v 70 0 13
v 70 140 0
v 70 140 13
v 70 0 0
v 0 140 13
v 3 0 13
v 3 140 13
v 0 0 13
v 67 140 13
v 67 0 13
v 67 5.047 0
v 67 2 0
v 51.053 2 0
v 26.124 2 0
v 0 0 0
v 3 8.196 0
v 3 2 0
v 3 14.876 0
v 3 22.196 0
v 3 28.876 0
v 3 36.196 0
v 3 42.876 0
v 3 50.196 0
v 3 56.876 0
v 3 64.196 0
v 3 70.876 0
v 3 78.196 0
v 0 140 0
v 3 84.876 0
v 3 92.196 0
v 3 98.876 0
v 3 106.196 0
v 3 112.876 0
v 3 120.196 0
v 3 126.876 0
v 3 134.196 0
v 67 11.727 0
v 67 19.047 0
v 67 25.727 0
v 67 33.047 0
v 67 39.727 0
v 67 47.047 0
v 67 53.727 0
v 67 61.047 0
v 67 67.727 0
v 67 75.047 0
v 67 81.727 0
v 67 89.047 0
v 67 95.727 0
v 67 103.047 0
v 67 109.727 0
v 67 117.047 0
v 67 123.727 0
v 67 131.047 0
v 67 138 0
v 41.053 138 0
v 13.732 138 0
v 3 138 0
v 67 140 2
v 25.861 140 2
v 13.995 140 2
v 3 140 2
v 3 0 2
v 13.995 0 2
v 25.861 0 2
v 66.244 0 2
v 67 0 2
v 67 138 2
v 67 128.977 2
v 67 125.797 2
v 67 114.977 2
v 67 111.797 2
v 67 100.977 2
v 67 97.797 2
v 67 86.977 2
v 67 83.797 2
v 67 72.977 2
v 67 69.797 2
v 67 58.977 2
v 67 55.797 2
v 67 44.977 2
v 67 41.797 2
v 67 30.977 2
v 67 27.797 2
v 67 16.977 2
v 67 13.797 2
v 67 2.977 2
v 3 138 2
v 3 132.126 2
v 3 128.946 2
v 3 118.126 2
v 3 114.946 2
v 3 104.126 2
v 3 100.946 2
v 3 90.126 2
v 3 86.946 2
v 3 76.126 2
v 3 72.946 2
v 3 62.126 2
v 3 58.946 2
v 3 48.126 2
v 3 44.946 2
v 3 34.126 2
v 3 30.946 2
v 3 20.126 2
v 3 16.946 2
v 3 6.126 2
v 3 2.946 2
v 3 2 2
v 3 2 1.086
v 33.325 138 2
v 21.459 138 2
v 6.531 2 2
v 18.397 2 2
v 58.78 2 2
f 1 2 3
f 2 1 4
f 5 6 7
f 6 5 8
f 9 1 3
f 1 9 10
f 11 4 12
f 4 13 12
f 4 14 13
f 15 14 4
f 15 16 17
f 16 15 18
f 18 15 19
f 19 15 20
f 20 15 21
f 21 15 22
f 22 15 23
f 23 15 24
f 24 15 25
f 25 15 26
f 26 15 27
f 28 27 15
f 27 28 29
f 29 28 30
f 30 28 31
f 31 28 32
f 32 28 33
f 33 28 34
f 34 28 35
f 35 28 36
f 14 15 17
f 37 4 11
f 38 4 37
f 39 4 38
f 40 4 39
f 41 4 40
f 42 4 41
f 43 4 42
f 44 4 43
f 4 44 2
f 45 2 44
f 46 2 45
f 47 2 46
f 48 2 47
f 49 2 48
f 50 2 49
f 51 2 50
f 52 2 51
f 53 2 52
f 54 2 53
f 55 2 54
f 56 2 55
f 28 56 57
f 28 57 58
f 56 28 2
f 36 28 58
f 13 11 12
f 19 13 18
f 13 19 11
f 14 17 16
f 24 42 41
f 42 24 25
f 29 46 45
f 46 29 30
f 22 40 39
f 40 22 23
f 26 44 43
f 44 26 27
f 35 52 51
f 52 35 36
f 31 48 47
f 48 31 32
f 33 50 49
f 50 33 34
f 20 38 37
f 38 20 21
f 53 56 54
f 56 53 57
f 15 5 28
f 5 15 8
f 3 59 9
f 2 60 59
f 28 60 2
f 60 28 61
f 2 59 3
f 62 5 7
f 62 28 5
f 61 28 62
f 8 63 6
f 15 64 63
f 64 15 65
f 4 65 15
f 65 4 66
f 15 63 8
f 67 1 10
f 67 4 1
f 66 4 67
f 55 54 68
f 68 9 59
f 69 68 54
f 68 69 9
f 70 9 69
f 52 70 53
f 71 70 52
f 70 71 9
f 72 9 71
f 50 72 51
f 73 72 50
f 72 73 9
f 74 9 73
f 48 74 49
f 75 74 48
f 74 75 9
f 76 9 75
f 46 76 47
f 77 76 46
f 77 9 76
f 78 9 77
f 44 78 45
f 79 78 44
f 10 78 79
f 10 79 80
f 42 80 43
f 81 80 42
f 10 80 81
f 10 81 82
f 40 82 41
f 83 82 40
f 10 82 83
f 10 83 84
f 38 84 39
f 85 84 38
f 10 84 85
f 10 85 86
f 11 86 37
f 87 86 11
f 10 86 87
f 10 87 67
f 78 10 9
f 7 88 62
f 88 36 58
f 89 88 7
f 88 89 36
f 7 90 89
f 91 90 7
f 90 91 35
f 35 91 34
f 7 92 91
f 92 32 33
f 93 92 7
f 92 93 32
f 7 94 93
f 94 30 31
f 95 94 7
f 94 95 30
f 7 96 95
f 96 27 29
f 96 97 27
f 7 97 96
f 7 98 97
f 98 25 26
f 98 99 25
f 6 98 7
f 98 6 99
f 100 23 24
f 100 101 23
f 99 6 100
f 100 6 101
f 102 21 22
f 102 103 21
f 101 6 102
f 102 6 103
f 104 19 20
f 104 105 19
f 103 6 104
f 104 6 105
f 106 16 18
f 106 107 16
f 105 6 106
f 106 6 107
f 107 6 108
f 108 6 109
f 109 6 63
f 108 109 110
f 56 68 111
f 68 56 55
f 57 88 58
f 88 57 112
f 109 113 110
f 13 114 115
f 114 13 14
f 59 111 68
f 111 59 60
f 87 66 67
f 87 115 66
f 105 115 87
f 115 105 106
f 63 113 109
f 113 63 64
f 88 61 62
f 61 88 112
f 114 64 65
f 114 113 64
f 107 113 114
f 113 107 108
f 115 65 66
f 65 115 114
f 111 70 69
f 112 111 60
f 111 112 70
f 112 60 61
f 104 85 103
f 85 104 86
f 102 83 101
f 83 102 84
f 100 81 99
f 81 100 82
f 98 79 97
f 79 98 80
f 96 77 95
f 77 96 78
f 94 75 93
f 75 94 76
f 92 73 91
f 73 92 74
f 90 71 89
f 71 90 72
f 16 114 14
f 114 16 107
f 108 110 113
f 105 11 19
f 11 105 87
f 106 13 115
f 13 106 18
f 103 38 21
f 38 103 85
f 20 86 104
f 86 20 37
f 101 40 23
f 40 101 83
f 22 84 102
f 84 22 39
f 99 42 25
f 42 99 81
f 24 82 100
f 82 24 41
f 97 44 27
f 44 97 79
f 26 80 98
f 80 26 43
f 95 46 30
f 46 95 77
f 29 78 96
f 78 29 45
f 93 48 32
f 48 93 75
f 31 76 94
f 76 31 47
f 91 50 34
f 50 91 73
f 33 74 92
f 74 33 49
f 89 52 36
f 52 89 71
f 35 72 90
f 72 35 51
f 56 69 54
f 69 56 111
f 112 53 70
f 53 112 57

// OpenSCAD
// file: prism.scad
module prism(height=5, length=100){
   rotate([135, 0, 0]){
        difference(){ 
           cube([length, height, height]);

            rotate([45, 0, 0]){    
                cube([length, height*height, height]);
            }
        }
    }
}
// main file
use <prism.scad>


module top(width=70, length=140){
    height=13;
    wall_side=3;
    wall=2;
    union(){
        difference(){
            cube([width, length, height]);
            translate([wall_side,wall,0]){
                cube([width-wall_side*2, length-wall*2, height]);    
            }
            translate([wall_side,0,2]){
                cube([width-wall_side*2, length, height]);    
            }
        }
        intersection(){
            cube([width, length, 2]);
            for(i=[-5:14:150]){
                translate([0, i, 0]){
                    rotate([0, 0, -15]){
                        prism();
                    }
                }
            }
        }
    }
}

top();
